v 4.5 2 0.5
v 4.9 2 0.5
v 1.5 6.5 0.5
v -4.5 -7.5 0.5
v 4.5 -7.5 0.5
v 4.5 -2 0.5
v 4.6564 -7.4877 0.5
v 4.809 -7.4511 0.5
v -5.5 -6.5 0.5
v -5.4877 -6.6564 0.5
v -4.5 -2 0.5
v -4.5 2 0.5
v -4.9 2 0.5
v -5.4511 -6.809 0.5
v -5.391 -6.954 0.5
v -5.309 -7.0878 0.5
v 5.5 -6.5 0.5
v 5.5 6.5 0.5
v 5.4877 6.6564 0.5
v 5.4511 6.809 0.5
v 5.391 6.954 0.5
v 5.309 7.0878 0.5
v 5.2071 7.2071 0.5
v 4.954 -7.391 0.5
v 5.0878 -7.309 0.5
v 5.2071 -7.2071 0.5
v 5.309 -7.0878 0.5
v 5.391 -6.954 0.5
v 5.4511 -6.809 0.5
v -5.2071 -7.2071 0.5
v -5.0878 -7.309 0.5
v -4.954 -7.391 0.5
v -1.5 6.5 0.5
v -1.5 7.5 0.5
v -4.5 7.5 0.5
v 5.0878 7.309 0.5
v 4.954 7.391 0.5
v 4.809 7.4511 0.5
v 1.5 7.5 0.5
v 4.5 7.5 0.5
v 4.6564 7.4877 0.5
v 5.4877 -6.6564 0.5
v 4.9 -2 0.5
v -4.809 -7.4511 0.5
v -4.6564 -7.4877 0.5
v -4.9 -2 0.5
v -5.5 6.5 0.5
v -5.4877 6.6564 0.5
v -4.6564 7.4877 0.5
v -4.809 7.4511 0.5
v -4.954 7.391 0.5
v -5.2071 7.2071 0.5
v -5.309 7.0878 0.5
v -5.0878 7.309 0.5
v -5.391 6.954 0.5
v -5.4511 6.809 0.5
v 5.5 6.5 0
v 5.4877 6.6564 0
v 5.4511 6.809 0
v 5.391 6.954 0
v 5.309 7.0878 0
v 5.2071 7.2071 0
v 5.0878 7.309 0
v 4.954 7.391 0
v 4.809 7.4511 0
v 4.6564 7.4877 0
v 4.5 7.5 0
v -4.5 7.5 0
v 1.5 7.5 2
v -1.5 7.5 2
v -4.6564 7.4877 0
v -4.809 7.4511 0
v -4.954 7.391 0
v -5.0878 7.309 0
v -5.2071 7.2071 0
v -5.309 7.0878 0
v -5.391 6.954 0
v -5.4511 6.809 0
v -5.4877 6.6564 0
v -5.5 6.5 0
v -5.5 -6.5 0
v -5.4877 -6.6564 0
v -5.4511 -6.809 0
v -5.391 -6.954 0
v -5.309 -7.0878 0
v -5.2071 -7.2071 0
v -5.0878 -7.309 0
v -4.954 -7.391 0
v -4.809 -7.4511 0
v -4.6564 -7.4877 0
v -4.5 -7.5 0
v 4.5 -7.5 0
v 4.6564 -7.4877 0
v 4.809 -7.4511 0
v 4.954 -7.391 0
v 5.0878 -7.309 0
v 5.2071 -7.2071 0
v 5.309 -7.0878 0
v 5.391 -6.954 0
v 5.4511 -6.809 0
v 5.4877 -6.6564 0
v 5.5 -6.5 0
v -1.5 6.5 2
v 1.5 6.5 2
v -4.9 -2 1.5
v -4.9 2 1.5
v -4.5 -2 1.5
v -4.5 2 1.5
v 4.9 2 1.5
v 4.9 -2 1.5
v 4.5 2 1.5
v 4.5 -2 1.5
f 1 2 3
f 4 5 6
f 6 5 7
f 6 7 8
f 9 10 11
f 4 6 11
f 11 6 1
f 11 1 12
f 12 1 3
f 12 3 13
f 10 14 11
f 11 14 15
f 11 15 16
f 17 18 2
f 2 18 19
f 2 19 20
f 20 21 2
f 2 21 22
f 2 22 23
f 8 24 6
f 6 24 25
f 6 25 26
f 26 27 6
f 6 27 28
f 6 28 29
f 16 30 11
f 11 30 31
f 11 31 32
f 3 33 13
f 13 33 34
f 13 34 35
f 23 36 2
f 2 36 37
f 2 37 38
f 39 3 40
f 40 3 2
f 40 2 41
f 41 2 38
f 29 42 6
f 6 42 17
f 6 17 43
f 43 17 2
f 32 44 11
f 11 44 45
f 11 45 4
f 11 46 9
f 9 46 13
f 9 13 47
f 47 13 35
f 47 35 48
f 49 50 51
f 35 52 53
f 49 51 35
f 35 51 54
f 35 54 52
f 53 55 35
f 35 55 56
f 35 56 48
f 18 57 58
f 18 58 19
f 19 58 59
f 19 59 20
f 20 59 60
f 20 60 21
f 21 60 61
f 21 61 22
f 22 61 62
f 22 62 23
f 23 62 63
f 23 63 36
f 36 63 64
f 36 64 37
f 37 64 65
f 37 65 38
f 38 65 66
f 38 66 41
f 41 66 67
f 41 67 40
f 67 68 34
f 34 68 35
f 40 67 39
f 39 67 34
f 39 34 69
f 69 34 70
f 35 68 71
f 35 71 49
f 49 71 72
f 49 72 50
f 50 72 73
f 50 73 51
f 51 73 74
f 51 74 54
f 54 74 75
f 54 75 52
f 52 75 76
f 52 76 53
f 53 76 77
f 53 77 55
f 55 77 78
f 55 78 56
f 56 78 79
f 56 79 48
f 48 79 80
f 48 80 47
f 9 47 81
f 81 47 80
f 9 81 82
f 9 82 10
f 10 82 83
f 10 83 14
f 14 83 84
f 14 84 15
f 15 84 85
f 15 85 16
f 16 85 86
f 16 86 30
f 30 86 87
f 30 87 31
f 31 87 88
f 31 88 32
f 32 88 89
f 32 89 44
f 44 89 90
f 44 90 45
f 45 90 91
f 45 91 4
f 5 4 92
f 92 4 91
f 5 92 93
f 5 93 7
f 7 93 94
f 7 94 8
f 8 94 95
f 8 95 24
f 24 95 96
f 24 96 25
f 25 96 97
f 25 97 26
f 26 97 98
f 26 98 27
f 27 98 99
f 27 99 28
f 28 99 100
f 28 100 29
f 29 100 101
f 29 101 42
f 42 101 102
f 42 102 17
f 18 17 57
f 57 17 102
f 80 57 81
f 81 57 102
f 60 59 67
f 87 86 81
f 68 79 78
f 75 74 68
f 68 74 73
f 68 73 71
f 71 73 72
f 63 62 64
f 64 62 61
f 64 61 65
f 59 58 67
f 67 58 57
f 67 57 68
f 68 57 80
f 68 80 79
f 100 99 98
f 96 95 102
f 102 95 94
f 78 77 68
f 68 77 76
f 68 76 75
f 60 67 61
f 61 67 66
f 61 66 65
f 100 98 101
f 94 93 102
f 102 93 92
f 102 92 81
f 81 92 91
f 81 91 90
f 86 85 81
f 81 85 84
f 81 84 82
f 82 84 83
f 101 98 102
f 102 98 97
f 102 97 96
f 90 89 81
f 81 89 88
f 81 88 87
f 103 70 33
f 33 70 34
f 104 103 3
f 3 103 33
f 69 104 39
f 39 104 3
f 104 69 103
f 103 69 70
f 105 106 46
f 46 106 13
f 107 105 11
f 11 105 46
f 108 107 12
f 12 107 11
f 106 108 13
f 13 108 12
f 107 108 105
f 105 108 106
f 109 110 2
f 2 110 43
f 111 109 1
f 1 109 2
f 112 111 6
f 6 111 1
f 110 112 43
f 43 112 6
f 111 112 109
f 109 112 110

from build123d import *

# Parameters (mm, degrees)
BOSS_EXTRUDE1_DEPTH = 0.5
SKETCH2_W           = 3
SKETCH2_H           = 1
BOSS_EXTRUDE2_DEPTH = 1.5
SKETCH3_W           = 0.4
SKETCH3_H           = 4
BOSS_EXTRUDE3_DEPTH = 1


with BuildPart() as part:
    # Sketch1 → Boss-Extrude1 (new body)
    with BuildSketch(Plane.XY):
        with BuildLine():
            Line((-4.5, -7.5), (4.5, -7.5))
            ThreePointArc((4.5, -7.5), (5.207106781, -7.207106781), (5.5, -6.5))
            Line((5.5, -6.5), (5.5, 6.5))
            ThreePointArc((5.5, 6.5), (5.207106781, 7.207106781), (4.5, 7.5))
            Line((4.5, 7.5), (-4.5, 7.5))
            ThreePointArc((-4.5, 7.5), (-5.207106781, 7.207106781), (-5.5, 6.5))
            Line((-5.5, 6.5), (-5.5, -6.5))
            ThreePointArc((-5.5, -6.5), (-5.207106781, -7.207106781), (-4.5, -7.5))
        make_face()
    extrude(amount=BOSS_EXTRUDE1_DEPTH)

    # Sketch2 → Boss-Extrude2 (add)
    with BuildSketch(Plane.XY.offset(0.5)):
        with Locations((0, 7)):
            Rectangle(SKETCH2_W, SKETCH2_H)
    extrude(amount=BOSS_EXTRUDE2_DEPTH)

    # Sketch3 → Boss-Extrude3 (add)
    with BuildSketch(Plane.XY.offset(0.5)):
        with Locations((-4.7, 0)):
            Rectangle(SKETCH3_W, SKETCH3_H)
    boss_extrude3 = extrude(amount=BOSS_EXTRUDE3_DEPTH)

    # Mirror2: Boss-Extrude3 across plane
    add(boss_extrude3.mirror(Plane(origin=(0, 0, 0), x_dir=(0, 0, 1), z_dir=(1, 0, 0))))


solid = part.part
